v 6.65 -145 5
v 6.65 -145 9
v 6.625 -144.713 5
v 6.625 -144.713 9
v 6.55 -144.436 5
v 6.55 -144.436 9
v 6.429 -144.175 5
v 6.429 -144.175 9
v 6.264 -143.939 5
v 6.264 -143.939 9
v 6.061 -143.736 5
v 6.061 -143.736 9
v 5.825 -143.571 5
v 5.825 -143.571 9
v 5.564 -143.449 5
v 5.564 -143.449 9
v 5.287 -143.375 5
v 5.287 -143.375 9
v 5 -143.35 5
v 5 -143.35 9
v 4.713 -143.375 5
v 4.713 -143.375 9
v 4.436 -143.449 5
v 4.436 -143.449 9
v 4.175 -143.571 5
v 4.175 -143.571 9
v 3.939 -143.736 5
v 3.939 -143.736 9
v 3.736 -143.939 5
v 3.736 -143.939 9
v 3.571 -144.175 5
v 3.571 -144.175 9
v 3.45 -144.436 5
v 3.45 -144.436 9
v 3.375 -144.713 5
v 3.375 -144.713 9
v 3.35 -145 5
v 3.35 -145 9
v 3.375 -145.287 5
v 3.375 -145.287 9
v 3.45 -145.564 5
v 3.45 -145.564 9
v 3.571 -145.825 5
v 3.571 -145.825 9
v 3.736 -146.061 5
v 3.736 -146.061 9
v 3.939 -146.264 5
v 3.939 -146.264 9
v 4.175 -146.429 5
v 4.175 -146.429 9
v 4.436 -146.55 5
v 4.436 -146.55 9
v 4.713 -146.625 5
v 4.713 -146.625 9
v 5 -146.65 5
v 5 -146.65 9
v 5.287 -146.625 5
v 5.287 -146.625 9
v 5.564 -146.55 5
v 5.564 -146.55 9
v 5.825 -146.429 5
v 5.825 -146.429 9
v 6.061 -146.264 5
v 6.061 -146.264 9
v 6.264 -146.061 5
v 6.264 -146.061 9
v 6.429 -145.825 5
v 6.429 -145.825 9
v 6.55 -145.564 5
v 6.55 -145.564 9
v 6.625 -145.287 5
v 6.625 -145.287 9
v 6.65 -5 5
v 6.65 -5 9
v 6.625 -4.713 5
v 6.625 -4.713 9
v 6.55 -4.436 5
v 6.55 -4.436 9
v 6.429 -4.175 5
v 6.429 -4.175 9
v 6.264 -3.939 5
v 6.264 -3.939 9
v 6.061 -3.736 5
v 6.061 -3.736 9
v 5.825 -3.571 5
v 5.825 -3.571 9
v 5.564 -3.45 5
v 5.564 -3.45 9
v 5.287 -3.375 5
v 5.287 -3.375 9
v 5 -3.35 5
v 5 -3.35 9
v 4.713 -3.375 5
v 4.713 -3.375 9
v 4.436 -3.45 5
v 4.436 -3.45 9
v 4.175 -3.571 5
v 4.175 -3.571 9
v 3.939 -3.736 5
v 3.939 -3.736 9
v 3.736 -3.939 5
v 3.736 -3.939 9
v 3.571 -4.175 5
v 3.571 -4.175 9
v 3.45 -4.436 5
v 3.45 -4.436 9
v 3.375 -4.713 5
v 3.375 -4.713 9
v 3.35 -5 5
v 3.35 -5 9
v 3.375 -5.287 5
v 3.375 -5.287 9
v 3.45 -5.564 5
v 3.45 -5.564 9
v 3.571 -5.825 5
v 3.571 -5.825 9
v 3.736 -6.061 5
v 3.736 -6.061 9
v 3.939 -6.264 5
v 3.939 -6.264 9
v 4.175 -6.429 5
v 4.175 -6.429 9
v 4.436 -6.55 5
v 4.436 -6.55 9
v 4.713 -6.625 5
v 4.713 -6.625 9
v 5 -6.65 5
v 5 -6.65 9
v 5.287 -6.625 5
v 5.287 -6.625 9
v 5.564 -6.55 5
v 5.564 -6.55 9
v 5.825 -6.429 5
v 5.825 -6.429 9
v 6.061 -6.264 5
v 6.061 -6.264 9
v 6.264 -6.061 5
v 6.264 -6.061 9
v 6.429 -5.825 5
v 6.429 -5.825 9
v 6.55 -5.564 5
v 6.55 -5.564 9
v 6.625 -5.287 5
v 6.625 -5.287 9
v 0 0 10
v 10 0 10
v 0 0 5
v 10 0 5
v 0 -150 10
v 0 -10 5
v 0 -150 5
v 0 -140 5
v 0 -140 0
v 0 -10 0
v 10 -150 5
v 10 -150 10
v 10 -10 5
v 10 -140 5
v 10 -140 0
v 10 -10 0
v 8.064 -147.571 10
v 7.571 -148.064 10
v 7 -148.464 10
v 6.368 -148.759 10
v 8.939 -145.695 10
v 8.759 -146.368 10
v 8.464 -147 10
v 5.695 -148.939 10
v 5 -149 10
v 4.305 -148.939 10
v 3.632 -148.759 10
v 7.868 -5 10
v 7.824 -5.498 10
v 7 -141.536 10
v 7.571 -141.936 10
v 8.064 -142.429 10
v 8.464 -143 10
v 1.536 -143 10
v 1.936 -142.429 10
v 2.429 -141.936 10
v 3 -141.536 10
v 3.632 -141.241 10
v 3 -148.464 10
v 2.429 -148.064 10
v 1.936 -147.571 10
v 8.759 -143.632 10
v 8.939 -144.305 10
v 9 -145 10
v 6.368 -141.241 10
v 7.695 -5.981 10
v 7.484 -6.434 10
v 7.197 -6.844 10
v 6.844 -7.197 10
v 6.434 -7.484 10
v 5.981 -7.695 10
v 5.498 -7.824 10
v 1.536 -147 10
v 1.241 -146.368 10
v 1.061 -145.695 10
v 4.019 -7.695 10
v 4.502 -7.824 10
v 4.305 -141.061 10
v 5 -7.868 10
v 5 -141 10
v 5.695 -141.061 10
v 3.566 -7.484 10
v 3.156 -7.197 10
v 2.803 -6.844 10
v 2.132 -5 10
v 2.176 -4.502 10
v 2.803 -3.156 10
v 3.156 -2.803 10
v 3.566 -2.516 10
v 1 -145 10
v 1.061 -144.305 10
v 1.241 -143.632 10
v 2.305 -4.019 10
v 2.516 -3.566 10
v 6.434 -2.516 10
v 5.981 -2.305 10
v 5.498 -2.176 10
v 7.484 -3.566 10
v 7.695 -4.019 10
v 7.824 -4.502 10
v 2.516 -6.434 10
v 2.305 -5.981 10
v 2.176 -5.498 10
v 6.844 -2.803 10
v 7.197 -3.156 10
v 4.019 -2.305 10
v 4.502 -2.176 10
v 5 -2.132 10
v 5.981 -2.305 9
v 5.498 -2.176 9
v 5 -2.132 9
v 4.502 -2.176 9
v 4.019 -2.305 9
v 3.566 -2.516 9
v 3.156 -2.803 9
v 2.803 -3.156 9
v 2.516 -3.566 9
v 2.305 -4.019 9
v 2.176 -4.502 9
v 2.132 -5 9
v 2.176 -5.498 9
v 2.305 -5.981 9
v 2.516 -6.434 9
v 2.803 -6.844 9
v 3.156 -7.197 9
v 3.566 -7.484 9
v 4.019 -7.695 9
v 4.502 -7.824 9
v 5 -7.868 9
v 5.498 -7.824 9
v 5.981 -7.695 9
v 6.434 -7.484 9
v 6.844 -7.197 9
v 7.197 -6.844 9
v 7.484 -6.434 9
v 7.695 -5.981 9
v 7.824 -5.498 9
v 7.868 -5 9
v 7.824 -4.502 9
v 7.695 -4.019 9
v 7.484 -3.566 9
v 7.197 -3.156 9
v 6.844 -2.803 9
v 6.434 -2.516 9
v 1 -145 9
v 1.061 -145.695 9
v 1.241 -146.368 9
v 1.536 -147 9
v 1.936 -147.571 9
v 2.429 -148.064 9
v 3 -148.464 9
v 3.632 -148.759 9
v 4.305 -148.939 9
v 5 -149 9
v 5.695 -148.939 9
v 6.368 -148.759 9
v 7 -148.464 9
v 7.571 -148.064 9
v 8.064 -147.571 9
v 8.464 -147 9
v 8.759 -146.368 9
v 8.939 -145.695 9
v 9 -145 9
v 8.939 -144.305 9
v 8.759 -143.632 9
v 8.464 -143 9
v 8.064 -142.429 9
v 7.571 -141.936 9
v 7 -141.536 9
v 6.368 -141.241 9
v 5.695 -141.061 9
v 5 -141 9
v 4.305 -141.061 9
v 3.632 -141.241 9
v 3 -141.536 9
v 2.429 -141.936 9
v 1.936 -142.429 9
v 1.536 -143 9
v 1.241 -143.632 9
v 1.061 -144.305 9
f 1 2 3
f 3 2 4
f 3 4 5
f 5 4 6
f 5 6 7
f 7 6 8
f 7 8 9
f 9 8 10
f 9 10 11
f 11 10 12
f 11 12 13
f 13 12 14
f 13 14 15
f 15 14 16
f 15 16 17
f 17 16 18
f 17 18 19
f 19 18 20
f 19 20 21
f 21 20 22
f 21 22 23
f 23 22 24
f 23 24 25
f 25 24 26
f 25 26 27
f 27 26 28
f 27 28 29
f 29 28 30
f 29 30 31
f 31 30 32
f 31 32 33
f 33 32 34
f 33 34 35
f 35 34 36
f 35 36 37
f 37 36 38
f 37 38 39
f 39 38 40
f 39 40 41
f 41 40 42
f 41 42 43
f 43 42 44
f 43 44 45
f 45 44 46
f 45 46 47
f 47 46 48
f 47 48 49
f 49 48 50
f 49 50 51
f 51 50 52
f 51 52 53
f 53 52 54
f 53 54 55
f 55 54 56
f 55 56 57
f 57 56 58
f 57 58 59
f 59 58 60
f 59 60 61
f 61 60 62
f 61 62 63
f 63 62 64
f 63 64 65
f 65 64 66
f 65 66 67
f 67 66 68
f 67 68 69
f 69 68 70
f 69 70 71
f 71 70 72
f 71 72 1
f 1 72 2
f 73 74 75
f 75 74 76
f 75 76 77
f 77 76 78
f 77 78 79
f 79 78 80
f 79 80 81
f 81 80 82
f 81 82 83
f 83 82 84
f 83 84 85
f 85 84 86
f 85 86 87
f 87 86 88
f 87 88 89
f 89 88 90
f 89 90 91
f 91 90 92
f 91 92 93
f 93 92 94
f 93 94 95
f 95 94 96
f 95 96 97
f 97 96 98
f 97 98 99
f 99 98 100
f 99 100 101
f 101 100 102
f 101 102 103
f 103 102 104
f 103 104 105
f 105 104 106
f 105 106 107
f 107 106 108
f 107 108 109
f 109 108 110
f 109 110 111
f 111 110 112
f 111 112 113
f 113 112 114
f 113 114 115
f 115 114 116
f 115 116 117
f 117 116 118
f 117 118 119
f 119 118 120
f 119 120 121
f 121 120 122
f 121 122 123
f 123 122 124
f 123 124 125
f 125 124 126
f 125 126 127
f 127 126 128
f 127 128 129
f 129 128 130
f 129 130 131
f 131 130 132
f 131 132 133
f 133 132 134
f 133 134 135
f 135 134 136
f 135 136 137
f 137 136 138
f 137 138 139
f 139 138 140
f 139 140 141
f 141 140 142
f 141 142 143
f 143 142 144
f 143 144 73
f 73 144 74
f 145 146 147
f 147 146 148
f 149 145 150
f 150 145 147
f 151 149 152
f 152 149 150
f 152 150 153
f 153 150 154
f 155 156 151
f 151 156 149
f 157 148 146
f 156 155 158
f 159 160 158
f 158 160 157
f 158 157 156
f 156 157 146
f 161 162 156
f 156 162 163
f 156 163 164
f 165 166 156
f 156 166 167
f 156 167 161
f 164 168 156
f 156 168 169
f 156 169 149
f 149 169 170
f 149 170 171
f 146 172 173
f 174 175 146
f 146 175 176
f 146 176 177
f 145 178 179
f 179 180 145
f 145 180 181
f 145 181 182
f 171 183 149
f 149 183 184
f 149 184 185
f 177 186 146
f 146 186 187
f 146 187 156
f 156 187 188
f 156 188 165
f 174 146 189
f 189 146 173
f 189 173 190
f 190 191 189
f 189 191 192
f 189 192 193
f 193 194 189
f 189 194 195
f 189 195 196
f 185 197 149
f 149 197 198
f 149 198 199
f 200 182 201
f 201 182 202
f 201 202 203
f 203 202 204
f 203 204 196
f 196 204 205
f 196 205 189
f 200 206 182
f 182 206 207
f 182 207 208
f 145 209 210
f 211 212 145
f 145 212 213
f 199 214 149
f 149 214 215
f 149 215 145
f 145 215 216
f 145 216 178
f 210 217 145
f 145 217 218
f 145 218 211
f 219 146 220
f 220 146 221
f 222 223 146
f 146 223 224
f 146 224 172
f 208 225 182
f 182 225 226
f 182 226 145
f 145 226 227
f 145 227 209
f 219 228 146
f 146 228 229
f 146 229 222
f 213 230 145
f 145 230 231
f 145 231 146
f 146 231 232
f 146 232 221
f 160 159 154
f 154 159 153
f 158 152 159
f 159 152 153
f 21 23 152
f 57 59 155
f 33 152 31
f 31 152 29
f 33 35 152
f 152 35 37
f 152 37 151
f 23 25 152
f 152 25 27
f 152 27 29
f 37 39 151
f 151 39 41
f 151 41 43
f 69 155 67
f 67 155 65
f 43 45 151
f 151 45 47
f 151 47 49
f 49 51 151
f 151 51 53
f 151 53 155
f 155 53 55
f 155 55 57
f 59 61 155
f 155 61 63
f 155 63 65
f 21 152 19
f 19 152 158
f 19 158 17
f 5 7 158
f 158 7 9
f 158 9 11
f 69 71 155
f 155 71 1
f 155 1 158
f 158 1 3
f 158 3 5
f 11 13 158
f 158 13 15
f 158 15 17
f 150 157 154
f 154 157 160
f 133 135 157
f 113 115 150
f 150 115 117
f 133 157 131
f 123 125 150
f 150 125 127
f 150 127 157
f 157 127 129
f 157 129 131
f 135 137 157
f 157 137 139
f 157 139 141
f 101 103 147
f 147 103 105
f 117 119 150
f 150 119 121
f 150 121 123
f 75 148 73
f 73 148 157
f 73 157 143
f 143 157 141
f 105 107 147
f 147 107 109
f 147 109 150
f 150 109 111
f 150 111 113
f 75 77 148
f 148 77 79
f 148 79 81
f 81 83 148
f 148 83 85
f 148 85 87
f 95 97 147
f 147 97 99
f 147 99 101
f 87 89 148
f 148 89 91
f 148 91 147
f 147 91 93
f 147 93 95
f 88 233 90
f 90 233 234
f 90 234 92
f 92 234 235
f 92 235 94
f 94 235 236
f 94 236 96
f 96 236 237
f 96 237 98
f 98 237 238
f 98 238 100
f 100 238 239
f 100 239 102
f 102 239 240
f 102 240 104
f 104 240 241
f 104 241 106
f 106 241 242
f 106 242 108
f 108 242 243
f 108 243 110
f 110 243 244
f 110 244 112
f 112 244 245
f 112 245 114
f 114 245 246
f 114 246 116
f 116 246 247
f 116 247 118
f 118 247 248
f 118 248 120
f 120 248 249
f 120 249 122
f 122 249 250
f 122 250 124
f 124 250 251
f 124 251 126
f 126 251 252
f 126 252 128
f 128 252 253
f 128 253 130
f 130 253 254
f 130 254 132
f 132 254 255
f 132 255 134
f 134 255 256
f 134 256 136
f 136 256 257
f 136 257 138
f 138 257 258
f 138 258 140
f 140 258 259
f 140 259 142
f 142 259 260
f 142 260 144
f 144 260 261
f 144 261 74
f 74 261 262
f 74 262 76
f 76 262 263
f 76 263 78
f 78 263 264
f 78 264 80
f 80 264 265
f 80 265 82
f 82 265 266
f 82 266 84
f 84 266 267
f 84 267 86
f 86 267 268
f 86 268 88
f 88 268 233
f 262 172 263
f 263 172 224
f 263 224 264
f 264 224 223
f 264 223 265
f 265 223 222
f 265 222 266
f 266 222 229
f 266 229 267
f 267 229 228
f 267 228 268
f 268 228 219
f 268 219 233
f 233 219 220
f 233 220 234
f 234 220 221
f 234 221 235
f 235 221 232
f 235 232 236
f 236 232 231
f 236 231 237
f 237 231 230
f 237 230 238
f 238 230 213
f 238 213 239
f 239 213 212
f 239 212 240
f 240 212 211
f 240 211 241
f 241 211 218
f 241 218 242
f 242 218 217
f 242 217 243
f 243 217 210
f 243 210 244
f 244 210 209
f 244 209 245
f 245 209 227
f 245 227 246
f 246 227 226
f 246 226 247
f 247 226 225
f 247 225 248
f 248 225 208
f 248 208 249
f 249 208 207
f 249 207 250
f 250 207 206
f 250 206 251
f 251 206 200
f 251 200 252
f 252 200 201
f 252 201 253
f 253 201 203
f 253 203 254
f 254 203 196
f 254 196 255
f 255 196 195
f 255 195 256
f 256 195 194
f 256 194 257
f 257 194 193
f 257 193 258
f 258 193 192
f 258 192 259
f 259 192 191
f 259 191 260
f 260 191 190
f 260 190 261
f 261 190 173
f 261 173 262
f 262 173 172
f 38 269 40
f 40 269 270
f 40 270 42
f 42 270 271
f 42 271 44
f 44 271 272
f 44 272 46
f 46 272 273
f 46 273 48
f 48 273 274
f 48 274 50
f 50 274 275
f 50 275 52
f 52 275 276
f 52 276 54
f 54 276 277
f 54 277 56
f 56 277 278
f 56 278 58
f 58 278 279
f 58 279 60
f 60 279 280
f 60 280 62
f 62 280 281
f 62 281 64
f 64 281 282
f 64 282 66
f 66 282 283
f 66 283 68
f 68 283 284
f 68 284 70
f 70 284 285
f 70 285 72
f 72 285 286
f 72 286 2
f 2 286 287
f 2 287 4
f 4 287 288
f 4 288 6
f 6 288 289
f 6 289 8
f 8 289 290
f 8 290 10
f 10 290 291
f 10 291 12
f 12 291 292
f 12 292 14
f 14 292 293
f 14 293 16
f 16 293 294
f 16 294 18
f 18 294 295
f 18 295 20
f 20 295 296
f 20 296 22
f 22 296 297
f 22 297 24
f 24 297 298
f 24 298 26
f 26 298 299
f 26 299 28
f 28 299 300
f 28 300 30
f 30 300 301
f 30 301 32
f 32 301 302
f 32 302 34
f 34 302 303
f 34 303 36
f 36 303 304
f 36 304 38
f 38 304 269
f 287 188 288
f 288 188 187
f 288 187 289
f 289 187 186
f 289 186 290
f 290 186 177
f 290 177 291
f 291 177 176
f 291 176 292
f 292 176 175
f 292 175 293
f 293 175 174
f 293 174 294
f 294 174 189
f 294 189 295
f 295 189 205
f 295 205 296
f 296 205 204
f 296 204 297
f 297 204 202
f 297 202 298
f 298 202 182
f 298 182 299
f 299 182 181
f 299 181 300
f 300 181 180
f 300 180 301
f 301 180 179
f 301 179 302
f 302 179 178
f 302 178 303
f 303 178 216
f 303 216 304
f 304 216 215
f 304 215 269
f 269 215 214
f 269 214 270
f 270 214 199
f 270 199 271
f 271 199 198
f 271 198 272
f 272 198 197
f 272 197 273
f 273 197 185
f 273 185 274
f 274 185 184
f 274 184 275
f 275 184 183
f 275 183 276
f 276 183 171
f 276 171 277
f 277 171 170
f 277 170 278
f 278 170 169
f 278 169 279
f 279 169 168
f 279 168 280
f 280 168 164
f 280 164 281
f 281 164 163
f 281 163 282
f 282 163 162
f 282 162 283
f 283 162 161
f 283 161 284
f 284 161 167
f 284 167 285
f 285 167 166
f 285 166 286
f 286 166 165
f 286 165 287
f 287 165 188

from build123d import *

# Parameters (mm, degrees)
SKETCH_1_W          = 10
SKETCH_1_H          = 150
EXTRUDE_1_DEPTH     = 10
SKETCH_3_W          = 10
SKETCH_3_H          = 10
CUT_EXTRUDE_1_DEPTH = 5
HOLE_WIZARD_M4_1_D  = 3.3
SKETCH_7_R          = 2.868052952
SKETCH_7_R_2        = 4
CUT_EXTRUDE_2_DEPTH = 1


with BuildPart() as part:
    # 草图1 → 凸台-拉伸1 (new body)
    with BuildSketch(Plane.XY):
        with Locations((5, -75)):
            Rectangle(SKETCH_1_W, SKETCH_1_H)
    extrude(amount=EXTRUDE_1_DEPTH)

    # 草图3 → 切除-拉伸1 (cut)
    with BuildSketch(Plane(origin=(0, 0, 0), x_dir=(-1, 0, 0), z_dir=(0, 0, -1))):
        with Locations((-5, -5)):
            Rectangle(SKETCH_3_W, SKETCH_3_H)
        with Locations((-5, -145)):
            Rectangle(SKETCH_3_W, SKETCH_3_H)
    extrude(amount=-CUT_EXTRUDE_1_DEPTH, mode=Mode.SUBTRACT)

    # M4 螺纹孔1 (through all)
    with Locations(Plane.XY.offset(10)):
        with Locations((5, -5), (5, -145)):
            Hole(HOLE_WIZARD_M4_1_D / 2)

    # 草图7 → 切除-拉伸2 (cut)
    with BuildSketch(Plane.XY.offset(10)):
        with Locations((5, -5)):
            Circle(SKETCH_7_R)
        with Locations((5, -145)):
            Circle(SKETCH_7_R_2)
    extrude(amount=-CUT_EXTRUDE_2_DEPTH, mode=Mode.SUBTRACT)


solid = part.part
